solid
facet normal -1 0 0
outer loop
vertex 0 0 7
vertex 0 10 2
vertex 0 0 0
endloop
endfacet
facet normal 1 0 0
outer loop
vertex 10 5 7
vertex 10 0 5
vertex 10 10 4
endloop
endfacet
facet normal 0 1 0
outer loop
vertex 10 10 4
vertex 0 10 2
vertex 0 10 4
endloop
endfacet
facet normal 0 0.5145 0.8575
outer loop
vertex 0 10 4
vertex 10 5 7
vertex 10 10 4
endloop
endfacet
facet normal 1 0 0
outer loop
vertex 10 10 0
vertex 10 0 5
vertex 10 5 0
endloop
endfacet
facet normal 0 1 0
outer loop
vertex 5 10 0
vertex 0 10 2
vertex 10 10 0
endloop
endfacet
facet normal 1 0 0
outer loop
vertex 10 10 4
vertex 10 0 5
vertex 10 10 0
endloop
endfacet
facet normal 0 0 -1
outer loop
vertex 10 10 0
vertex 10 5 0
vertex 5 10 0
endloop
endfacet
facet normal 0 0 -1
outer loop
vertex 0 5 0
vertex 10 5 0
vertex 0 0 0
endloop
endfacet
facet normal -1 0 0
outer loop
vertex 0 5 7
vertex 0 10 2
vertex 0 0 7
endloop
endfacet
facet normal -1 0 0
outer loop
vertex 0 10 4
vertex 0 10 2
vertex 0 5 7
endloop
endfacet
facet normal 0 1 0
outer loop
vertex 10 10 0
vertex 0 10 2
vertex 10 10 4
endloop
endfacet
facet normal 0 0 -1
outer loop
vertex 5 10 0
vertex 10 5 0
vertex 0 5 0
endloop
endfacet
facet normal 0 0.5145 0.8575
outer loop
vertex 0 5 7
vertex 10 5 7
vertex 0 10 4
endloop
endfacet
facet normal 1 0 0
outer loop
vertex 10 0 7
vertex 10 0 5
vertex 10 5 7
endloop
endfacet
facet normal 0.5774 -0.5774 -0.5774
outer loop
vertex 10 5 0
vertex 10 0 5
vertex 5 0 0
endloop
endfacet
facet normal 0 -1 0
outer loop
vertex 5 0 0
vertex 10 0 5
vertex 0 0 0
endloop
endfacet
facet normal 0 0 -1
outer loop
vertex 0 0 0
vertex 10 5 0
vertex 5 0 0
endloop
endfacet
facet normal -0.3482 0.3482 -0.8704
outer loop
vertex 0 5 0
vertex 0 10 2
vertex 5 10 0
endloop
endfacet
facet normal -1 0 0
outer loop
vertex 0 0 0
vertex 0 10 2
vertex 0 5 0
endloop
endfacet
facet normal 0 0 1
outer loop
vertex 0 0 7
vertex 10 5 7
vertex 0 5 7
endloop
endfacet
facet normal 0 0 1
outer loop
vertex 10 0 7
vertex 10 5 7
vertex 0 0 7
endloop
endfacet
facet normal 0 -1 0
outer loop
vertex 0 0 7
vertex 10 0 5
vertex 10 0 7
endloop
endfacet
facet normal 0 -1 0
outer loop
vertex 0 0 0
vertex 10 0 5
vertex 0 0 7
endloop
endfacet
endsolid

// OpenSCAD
module figure_eight(width = 5, height = 5, depth = 2) {
  hull() {
    translate([0, 0, 0]) cube([width, height, depth]);
    translate([width, height, depth]) cube([width, height, depth]);
    translate([0, height, depth]) cube([width, height, depth]);
    translate([0, 0, height]) cube([width, height, depth]);
    translate([width, 0, height]) cube([width, height, depth]);
    translate([width, height, 0]) cube([width, height, depth]);
  }
}

figure_eight();
